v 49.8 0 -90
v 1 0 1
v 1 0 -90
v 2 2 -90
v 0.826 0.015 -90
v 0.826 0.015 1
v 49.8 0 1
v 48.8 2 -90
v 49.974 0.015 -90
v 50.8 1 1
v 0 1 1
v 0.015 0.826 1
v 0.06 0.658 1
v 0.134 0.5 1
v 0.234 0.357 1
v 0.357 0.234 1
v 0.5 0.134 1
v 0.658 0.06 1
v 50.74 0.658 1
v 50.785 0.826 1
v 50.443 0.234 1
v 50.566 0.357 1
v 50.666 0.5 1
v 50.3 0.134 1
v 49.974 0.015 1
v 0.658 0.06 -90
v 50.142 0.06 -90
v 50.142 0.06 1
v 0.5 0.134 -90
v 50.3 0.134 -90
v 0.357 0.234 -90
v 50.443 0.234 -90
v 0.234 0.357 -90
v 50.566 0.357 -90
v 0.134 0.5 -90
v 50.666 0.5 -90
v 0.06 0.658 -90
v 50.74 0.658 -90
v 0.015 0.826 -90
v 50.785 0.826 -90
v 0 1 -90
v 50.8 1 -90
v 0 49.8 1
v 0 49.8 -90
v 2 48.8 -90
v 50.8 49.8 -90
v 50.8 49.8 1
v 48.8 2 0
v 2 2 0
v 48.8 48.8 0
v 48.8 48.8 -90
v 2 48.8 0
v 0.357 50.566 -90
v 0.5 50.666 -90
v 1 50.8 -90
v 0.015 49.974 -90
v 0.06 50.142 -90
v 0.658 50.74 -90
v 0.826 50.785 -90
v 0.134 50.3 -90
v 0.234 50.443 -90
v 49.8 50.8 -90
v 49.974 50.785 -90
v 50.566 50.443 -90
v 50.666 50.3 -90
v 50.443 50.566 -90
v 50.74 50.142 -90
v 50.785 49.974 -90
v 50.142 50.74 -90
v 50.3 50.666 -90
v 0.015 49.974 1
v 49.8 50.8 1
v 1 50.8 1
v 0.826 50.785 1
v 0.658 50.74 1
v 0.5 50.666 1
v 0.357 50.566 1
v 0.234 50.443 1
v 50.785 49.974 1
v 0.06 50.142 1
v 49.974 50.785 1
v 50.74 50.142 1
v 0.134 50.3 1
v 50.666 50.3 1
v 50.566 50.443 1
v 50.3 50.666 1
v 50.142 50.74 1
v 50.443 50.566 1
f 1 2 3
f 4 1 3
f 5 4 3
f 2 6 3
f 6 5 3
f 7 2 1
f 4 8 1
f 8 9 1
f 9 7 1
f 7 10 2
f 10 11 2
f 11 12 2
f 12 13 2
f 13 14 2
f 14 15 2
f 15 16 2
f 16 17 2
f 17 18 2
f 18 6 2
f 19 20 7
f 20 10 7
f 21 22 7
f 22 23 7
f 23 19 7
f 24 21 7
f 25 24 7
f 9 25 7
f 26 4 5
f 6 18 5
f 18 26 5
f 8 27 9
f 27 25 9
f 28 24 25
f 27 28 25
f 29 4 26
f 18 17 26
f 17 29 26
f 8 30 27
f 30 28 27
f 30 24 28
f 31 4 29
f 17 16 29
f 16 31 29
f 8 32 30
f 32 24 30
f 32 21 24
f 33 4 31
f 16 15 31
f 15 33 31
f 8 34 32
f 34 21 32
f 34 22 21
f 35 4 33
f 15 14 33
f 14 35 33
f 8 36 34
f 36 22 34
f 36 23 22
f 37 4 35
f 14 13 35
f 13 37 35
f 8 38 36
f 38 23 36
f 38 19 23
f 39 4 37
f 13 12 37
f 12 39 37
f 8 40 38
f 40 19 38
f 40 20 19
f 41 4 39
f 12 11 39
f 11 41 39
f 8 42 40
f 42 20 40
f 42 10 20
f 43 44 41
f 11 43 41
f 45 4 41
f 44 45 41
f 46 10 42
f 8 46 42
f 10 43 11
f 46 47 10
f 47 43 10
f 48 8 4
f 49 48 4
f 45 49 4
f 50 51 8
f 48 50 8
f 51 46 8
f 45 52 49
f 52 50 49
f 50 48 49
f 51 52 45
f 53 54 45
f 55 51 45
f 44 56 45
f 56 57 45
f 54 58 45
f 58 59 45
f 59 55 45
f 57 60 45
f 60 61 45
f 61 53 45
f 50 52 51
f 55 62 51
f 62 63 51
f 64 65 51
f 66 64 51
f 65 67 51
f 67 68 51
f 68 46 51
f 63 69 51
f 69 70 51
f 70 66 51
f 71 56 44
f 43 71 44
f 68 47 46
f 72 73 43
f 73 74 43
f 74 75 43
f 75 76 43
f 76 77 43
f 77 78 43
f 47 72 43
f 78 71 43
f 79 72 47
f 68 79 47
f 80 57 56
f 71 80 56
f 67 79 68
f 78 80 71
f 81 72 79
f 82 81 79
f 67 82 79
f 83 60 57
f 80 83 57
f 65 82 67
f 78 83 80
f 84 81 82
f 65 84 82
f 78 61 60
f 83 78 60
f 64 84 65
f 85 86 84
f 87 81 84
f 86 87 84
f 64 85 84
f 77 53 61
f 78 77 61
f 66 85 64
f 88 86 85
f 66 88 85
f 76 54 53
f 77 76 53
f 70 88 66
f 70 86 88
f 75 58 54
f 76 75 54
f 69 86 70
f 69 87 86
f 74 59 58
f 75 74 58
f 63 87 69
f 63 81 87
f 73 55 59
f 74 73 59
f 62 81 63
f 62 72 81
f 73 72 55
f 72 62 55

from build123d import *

# Parameters (mm, degrees)
SKETCH1_W           = 50.8
SKETCH1_H           = 50.8
BOSS_EXTRUDE1_DEPTH = 1
SKETCH1_3_W         = 50.8
SKETCH1_3_H         = 50.8
SKETCH1_3_W_2       = 46.8
SKETCH1_3_H_2       = 46.8
BOSS_EXTRUDE2_DEPTH = 90
FILLET1_R           = 1


with BuildPart() as part:
    # Sketch1 → Boss-Extrude1 (new body)
    with BuildSketch(Plane.XY):
        with Locations((25.4, 25.4)):
            Rectangle(SKETCH1_W, SKETCH1_H)
    extrude(amount=BOSS_EXTRUDE1_DEPTH)

    # Sketch1<3> → Boss-Extrude2 (add)
    with BuildSketch(Plane.XY):
        with Locations((25.4, 25.4)):
            Rectangle(SKETCH1_3_W, SKETCH1_3_H)
        with Locations((25.4, 25.4)):
            Rectangle(SKETCH1_3_W_2, SKETCH1_3_H_2, mode=Mode.SUBTRACT)
    extrude(amount=-BOSS_EXTRUDE2_DEPTH)

    # Fillet1
    fillet1_edges = [part.edges().sort_by_distance(p)[0] for p in [
        (0, 50.8, -44.5),
        (50.8, 50.8, -44.5),
        (50.8, 0, -44.5),
        (0, 0, -44.5),
    ]]
    fillet(fillet1_edges, radius=FILLET1_R)


solid = part.part
